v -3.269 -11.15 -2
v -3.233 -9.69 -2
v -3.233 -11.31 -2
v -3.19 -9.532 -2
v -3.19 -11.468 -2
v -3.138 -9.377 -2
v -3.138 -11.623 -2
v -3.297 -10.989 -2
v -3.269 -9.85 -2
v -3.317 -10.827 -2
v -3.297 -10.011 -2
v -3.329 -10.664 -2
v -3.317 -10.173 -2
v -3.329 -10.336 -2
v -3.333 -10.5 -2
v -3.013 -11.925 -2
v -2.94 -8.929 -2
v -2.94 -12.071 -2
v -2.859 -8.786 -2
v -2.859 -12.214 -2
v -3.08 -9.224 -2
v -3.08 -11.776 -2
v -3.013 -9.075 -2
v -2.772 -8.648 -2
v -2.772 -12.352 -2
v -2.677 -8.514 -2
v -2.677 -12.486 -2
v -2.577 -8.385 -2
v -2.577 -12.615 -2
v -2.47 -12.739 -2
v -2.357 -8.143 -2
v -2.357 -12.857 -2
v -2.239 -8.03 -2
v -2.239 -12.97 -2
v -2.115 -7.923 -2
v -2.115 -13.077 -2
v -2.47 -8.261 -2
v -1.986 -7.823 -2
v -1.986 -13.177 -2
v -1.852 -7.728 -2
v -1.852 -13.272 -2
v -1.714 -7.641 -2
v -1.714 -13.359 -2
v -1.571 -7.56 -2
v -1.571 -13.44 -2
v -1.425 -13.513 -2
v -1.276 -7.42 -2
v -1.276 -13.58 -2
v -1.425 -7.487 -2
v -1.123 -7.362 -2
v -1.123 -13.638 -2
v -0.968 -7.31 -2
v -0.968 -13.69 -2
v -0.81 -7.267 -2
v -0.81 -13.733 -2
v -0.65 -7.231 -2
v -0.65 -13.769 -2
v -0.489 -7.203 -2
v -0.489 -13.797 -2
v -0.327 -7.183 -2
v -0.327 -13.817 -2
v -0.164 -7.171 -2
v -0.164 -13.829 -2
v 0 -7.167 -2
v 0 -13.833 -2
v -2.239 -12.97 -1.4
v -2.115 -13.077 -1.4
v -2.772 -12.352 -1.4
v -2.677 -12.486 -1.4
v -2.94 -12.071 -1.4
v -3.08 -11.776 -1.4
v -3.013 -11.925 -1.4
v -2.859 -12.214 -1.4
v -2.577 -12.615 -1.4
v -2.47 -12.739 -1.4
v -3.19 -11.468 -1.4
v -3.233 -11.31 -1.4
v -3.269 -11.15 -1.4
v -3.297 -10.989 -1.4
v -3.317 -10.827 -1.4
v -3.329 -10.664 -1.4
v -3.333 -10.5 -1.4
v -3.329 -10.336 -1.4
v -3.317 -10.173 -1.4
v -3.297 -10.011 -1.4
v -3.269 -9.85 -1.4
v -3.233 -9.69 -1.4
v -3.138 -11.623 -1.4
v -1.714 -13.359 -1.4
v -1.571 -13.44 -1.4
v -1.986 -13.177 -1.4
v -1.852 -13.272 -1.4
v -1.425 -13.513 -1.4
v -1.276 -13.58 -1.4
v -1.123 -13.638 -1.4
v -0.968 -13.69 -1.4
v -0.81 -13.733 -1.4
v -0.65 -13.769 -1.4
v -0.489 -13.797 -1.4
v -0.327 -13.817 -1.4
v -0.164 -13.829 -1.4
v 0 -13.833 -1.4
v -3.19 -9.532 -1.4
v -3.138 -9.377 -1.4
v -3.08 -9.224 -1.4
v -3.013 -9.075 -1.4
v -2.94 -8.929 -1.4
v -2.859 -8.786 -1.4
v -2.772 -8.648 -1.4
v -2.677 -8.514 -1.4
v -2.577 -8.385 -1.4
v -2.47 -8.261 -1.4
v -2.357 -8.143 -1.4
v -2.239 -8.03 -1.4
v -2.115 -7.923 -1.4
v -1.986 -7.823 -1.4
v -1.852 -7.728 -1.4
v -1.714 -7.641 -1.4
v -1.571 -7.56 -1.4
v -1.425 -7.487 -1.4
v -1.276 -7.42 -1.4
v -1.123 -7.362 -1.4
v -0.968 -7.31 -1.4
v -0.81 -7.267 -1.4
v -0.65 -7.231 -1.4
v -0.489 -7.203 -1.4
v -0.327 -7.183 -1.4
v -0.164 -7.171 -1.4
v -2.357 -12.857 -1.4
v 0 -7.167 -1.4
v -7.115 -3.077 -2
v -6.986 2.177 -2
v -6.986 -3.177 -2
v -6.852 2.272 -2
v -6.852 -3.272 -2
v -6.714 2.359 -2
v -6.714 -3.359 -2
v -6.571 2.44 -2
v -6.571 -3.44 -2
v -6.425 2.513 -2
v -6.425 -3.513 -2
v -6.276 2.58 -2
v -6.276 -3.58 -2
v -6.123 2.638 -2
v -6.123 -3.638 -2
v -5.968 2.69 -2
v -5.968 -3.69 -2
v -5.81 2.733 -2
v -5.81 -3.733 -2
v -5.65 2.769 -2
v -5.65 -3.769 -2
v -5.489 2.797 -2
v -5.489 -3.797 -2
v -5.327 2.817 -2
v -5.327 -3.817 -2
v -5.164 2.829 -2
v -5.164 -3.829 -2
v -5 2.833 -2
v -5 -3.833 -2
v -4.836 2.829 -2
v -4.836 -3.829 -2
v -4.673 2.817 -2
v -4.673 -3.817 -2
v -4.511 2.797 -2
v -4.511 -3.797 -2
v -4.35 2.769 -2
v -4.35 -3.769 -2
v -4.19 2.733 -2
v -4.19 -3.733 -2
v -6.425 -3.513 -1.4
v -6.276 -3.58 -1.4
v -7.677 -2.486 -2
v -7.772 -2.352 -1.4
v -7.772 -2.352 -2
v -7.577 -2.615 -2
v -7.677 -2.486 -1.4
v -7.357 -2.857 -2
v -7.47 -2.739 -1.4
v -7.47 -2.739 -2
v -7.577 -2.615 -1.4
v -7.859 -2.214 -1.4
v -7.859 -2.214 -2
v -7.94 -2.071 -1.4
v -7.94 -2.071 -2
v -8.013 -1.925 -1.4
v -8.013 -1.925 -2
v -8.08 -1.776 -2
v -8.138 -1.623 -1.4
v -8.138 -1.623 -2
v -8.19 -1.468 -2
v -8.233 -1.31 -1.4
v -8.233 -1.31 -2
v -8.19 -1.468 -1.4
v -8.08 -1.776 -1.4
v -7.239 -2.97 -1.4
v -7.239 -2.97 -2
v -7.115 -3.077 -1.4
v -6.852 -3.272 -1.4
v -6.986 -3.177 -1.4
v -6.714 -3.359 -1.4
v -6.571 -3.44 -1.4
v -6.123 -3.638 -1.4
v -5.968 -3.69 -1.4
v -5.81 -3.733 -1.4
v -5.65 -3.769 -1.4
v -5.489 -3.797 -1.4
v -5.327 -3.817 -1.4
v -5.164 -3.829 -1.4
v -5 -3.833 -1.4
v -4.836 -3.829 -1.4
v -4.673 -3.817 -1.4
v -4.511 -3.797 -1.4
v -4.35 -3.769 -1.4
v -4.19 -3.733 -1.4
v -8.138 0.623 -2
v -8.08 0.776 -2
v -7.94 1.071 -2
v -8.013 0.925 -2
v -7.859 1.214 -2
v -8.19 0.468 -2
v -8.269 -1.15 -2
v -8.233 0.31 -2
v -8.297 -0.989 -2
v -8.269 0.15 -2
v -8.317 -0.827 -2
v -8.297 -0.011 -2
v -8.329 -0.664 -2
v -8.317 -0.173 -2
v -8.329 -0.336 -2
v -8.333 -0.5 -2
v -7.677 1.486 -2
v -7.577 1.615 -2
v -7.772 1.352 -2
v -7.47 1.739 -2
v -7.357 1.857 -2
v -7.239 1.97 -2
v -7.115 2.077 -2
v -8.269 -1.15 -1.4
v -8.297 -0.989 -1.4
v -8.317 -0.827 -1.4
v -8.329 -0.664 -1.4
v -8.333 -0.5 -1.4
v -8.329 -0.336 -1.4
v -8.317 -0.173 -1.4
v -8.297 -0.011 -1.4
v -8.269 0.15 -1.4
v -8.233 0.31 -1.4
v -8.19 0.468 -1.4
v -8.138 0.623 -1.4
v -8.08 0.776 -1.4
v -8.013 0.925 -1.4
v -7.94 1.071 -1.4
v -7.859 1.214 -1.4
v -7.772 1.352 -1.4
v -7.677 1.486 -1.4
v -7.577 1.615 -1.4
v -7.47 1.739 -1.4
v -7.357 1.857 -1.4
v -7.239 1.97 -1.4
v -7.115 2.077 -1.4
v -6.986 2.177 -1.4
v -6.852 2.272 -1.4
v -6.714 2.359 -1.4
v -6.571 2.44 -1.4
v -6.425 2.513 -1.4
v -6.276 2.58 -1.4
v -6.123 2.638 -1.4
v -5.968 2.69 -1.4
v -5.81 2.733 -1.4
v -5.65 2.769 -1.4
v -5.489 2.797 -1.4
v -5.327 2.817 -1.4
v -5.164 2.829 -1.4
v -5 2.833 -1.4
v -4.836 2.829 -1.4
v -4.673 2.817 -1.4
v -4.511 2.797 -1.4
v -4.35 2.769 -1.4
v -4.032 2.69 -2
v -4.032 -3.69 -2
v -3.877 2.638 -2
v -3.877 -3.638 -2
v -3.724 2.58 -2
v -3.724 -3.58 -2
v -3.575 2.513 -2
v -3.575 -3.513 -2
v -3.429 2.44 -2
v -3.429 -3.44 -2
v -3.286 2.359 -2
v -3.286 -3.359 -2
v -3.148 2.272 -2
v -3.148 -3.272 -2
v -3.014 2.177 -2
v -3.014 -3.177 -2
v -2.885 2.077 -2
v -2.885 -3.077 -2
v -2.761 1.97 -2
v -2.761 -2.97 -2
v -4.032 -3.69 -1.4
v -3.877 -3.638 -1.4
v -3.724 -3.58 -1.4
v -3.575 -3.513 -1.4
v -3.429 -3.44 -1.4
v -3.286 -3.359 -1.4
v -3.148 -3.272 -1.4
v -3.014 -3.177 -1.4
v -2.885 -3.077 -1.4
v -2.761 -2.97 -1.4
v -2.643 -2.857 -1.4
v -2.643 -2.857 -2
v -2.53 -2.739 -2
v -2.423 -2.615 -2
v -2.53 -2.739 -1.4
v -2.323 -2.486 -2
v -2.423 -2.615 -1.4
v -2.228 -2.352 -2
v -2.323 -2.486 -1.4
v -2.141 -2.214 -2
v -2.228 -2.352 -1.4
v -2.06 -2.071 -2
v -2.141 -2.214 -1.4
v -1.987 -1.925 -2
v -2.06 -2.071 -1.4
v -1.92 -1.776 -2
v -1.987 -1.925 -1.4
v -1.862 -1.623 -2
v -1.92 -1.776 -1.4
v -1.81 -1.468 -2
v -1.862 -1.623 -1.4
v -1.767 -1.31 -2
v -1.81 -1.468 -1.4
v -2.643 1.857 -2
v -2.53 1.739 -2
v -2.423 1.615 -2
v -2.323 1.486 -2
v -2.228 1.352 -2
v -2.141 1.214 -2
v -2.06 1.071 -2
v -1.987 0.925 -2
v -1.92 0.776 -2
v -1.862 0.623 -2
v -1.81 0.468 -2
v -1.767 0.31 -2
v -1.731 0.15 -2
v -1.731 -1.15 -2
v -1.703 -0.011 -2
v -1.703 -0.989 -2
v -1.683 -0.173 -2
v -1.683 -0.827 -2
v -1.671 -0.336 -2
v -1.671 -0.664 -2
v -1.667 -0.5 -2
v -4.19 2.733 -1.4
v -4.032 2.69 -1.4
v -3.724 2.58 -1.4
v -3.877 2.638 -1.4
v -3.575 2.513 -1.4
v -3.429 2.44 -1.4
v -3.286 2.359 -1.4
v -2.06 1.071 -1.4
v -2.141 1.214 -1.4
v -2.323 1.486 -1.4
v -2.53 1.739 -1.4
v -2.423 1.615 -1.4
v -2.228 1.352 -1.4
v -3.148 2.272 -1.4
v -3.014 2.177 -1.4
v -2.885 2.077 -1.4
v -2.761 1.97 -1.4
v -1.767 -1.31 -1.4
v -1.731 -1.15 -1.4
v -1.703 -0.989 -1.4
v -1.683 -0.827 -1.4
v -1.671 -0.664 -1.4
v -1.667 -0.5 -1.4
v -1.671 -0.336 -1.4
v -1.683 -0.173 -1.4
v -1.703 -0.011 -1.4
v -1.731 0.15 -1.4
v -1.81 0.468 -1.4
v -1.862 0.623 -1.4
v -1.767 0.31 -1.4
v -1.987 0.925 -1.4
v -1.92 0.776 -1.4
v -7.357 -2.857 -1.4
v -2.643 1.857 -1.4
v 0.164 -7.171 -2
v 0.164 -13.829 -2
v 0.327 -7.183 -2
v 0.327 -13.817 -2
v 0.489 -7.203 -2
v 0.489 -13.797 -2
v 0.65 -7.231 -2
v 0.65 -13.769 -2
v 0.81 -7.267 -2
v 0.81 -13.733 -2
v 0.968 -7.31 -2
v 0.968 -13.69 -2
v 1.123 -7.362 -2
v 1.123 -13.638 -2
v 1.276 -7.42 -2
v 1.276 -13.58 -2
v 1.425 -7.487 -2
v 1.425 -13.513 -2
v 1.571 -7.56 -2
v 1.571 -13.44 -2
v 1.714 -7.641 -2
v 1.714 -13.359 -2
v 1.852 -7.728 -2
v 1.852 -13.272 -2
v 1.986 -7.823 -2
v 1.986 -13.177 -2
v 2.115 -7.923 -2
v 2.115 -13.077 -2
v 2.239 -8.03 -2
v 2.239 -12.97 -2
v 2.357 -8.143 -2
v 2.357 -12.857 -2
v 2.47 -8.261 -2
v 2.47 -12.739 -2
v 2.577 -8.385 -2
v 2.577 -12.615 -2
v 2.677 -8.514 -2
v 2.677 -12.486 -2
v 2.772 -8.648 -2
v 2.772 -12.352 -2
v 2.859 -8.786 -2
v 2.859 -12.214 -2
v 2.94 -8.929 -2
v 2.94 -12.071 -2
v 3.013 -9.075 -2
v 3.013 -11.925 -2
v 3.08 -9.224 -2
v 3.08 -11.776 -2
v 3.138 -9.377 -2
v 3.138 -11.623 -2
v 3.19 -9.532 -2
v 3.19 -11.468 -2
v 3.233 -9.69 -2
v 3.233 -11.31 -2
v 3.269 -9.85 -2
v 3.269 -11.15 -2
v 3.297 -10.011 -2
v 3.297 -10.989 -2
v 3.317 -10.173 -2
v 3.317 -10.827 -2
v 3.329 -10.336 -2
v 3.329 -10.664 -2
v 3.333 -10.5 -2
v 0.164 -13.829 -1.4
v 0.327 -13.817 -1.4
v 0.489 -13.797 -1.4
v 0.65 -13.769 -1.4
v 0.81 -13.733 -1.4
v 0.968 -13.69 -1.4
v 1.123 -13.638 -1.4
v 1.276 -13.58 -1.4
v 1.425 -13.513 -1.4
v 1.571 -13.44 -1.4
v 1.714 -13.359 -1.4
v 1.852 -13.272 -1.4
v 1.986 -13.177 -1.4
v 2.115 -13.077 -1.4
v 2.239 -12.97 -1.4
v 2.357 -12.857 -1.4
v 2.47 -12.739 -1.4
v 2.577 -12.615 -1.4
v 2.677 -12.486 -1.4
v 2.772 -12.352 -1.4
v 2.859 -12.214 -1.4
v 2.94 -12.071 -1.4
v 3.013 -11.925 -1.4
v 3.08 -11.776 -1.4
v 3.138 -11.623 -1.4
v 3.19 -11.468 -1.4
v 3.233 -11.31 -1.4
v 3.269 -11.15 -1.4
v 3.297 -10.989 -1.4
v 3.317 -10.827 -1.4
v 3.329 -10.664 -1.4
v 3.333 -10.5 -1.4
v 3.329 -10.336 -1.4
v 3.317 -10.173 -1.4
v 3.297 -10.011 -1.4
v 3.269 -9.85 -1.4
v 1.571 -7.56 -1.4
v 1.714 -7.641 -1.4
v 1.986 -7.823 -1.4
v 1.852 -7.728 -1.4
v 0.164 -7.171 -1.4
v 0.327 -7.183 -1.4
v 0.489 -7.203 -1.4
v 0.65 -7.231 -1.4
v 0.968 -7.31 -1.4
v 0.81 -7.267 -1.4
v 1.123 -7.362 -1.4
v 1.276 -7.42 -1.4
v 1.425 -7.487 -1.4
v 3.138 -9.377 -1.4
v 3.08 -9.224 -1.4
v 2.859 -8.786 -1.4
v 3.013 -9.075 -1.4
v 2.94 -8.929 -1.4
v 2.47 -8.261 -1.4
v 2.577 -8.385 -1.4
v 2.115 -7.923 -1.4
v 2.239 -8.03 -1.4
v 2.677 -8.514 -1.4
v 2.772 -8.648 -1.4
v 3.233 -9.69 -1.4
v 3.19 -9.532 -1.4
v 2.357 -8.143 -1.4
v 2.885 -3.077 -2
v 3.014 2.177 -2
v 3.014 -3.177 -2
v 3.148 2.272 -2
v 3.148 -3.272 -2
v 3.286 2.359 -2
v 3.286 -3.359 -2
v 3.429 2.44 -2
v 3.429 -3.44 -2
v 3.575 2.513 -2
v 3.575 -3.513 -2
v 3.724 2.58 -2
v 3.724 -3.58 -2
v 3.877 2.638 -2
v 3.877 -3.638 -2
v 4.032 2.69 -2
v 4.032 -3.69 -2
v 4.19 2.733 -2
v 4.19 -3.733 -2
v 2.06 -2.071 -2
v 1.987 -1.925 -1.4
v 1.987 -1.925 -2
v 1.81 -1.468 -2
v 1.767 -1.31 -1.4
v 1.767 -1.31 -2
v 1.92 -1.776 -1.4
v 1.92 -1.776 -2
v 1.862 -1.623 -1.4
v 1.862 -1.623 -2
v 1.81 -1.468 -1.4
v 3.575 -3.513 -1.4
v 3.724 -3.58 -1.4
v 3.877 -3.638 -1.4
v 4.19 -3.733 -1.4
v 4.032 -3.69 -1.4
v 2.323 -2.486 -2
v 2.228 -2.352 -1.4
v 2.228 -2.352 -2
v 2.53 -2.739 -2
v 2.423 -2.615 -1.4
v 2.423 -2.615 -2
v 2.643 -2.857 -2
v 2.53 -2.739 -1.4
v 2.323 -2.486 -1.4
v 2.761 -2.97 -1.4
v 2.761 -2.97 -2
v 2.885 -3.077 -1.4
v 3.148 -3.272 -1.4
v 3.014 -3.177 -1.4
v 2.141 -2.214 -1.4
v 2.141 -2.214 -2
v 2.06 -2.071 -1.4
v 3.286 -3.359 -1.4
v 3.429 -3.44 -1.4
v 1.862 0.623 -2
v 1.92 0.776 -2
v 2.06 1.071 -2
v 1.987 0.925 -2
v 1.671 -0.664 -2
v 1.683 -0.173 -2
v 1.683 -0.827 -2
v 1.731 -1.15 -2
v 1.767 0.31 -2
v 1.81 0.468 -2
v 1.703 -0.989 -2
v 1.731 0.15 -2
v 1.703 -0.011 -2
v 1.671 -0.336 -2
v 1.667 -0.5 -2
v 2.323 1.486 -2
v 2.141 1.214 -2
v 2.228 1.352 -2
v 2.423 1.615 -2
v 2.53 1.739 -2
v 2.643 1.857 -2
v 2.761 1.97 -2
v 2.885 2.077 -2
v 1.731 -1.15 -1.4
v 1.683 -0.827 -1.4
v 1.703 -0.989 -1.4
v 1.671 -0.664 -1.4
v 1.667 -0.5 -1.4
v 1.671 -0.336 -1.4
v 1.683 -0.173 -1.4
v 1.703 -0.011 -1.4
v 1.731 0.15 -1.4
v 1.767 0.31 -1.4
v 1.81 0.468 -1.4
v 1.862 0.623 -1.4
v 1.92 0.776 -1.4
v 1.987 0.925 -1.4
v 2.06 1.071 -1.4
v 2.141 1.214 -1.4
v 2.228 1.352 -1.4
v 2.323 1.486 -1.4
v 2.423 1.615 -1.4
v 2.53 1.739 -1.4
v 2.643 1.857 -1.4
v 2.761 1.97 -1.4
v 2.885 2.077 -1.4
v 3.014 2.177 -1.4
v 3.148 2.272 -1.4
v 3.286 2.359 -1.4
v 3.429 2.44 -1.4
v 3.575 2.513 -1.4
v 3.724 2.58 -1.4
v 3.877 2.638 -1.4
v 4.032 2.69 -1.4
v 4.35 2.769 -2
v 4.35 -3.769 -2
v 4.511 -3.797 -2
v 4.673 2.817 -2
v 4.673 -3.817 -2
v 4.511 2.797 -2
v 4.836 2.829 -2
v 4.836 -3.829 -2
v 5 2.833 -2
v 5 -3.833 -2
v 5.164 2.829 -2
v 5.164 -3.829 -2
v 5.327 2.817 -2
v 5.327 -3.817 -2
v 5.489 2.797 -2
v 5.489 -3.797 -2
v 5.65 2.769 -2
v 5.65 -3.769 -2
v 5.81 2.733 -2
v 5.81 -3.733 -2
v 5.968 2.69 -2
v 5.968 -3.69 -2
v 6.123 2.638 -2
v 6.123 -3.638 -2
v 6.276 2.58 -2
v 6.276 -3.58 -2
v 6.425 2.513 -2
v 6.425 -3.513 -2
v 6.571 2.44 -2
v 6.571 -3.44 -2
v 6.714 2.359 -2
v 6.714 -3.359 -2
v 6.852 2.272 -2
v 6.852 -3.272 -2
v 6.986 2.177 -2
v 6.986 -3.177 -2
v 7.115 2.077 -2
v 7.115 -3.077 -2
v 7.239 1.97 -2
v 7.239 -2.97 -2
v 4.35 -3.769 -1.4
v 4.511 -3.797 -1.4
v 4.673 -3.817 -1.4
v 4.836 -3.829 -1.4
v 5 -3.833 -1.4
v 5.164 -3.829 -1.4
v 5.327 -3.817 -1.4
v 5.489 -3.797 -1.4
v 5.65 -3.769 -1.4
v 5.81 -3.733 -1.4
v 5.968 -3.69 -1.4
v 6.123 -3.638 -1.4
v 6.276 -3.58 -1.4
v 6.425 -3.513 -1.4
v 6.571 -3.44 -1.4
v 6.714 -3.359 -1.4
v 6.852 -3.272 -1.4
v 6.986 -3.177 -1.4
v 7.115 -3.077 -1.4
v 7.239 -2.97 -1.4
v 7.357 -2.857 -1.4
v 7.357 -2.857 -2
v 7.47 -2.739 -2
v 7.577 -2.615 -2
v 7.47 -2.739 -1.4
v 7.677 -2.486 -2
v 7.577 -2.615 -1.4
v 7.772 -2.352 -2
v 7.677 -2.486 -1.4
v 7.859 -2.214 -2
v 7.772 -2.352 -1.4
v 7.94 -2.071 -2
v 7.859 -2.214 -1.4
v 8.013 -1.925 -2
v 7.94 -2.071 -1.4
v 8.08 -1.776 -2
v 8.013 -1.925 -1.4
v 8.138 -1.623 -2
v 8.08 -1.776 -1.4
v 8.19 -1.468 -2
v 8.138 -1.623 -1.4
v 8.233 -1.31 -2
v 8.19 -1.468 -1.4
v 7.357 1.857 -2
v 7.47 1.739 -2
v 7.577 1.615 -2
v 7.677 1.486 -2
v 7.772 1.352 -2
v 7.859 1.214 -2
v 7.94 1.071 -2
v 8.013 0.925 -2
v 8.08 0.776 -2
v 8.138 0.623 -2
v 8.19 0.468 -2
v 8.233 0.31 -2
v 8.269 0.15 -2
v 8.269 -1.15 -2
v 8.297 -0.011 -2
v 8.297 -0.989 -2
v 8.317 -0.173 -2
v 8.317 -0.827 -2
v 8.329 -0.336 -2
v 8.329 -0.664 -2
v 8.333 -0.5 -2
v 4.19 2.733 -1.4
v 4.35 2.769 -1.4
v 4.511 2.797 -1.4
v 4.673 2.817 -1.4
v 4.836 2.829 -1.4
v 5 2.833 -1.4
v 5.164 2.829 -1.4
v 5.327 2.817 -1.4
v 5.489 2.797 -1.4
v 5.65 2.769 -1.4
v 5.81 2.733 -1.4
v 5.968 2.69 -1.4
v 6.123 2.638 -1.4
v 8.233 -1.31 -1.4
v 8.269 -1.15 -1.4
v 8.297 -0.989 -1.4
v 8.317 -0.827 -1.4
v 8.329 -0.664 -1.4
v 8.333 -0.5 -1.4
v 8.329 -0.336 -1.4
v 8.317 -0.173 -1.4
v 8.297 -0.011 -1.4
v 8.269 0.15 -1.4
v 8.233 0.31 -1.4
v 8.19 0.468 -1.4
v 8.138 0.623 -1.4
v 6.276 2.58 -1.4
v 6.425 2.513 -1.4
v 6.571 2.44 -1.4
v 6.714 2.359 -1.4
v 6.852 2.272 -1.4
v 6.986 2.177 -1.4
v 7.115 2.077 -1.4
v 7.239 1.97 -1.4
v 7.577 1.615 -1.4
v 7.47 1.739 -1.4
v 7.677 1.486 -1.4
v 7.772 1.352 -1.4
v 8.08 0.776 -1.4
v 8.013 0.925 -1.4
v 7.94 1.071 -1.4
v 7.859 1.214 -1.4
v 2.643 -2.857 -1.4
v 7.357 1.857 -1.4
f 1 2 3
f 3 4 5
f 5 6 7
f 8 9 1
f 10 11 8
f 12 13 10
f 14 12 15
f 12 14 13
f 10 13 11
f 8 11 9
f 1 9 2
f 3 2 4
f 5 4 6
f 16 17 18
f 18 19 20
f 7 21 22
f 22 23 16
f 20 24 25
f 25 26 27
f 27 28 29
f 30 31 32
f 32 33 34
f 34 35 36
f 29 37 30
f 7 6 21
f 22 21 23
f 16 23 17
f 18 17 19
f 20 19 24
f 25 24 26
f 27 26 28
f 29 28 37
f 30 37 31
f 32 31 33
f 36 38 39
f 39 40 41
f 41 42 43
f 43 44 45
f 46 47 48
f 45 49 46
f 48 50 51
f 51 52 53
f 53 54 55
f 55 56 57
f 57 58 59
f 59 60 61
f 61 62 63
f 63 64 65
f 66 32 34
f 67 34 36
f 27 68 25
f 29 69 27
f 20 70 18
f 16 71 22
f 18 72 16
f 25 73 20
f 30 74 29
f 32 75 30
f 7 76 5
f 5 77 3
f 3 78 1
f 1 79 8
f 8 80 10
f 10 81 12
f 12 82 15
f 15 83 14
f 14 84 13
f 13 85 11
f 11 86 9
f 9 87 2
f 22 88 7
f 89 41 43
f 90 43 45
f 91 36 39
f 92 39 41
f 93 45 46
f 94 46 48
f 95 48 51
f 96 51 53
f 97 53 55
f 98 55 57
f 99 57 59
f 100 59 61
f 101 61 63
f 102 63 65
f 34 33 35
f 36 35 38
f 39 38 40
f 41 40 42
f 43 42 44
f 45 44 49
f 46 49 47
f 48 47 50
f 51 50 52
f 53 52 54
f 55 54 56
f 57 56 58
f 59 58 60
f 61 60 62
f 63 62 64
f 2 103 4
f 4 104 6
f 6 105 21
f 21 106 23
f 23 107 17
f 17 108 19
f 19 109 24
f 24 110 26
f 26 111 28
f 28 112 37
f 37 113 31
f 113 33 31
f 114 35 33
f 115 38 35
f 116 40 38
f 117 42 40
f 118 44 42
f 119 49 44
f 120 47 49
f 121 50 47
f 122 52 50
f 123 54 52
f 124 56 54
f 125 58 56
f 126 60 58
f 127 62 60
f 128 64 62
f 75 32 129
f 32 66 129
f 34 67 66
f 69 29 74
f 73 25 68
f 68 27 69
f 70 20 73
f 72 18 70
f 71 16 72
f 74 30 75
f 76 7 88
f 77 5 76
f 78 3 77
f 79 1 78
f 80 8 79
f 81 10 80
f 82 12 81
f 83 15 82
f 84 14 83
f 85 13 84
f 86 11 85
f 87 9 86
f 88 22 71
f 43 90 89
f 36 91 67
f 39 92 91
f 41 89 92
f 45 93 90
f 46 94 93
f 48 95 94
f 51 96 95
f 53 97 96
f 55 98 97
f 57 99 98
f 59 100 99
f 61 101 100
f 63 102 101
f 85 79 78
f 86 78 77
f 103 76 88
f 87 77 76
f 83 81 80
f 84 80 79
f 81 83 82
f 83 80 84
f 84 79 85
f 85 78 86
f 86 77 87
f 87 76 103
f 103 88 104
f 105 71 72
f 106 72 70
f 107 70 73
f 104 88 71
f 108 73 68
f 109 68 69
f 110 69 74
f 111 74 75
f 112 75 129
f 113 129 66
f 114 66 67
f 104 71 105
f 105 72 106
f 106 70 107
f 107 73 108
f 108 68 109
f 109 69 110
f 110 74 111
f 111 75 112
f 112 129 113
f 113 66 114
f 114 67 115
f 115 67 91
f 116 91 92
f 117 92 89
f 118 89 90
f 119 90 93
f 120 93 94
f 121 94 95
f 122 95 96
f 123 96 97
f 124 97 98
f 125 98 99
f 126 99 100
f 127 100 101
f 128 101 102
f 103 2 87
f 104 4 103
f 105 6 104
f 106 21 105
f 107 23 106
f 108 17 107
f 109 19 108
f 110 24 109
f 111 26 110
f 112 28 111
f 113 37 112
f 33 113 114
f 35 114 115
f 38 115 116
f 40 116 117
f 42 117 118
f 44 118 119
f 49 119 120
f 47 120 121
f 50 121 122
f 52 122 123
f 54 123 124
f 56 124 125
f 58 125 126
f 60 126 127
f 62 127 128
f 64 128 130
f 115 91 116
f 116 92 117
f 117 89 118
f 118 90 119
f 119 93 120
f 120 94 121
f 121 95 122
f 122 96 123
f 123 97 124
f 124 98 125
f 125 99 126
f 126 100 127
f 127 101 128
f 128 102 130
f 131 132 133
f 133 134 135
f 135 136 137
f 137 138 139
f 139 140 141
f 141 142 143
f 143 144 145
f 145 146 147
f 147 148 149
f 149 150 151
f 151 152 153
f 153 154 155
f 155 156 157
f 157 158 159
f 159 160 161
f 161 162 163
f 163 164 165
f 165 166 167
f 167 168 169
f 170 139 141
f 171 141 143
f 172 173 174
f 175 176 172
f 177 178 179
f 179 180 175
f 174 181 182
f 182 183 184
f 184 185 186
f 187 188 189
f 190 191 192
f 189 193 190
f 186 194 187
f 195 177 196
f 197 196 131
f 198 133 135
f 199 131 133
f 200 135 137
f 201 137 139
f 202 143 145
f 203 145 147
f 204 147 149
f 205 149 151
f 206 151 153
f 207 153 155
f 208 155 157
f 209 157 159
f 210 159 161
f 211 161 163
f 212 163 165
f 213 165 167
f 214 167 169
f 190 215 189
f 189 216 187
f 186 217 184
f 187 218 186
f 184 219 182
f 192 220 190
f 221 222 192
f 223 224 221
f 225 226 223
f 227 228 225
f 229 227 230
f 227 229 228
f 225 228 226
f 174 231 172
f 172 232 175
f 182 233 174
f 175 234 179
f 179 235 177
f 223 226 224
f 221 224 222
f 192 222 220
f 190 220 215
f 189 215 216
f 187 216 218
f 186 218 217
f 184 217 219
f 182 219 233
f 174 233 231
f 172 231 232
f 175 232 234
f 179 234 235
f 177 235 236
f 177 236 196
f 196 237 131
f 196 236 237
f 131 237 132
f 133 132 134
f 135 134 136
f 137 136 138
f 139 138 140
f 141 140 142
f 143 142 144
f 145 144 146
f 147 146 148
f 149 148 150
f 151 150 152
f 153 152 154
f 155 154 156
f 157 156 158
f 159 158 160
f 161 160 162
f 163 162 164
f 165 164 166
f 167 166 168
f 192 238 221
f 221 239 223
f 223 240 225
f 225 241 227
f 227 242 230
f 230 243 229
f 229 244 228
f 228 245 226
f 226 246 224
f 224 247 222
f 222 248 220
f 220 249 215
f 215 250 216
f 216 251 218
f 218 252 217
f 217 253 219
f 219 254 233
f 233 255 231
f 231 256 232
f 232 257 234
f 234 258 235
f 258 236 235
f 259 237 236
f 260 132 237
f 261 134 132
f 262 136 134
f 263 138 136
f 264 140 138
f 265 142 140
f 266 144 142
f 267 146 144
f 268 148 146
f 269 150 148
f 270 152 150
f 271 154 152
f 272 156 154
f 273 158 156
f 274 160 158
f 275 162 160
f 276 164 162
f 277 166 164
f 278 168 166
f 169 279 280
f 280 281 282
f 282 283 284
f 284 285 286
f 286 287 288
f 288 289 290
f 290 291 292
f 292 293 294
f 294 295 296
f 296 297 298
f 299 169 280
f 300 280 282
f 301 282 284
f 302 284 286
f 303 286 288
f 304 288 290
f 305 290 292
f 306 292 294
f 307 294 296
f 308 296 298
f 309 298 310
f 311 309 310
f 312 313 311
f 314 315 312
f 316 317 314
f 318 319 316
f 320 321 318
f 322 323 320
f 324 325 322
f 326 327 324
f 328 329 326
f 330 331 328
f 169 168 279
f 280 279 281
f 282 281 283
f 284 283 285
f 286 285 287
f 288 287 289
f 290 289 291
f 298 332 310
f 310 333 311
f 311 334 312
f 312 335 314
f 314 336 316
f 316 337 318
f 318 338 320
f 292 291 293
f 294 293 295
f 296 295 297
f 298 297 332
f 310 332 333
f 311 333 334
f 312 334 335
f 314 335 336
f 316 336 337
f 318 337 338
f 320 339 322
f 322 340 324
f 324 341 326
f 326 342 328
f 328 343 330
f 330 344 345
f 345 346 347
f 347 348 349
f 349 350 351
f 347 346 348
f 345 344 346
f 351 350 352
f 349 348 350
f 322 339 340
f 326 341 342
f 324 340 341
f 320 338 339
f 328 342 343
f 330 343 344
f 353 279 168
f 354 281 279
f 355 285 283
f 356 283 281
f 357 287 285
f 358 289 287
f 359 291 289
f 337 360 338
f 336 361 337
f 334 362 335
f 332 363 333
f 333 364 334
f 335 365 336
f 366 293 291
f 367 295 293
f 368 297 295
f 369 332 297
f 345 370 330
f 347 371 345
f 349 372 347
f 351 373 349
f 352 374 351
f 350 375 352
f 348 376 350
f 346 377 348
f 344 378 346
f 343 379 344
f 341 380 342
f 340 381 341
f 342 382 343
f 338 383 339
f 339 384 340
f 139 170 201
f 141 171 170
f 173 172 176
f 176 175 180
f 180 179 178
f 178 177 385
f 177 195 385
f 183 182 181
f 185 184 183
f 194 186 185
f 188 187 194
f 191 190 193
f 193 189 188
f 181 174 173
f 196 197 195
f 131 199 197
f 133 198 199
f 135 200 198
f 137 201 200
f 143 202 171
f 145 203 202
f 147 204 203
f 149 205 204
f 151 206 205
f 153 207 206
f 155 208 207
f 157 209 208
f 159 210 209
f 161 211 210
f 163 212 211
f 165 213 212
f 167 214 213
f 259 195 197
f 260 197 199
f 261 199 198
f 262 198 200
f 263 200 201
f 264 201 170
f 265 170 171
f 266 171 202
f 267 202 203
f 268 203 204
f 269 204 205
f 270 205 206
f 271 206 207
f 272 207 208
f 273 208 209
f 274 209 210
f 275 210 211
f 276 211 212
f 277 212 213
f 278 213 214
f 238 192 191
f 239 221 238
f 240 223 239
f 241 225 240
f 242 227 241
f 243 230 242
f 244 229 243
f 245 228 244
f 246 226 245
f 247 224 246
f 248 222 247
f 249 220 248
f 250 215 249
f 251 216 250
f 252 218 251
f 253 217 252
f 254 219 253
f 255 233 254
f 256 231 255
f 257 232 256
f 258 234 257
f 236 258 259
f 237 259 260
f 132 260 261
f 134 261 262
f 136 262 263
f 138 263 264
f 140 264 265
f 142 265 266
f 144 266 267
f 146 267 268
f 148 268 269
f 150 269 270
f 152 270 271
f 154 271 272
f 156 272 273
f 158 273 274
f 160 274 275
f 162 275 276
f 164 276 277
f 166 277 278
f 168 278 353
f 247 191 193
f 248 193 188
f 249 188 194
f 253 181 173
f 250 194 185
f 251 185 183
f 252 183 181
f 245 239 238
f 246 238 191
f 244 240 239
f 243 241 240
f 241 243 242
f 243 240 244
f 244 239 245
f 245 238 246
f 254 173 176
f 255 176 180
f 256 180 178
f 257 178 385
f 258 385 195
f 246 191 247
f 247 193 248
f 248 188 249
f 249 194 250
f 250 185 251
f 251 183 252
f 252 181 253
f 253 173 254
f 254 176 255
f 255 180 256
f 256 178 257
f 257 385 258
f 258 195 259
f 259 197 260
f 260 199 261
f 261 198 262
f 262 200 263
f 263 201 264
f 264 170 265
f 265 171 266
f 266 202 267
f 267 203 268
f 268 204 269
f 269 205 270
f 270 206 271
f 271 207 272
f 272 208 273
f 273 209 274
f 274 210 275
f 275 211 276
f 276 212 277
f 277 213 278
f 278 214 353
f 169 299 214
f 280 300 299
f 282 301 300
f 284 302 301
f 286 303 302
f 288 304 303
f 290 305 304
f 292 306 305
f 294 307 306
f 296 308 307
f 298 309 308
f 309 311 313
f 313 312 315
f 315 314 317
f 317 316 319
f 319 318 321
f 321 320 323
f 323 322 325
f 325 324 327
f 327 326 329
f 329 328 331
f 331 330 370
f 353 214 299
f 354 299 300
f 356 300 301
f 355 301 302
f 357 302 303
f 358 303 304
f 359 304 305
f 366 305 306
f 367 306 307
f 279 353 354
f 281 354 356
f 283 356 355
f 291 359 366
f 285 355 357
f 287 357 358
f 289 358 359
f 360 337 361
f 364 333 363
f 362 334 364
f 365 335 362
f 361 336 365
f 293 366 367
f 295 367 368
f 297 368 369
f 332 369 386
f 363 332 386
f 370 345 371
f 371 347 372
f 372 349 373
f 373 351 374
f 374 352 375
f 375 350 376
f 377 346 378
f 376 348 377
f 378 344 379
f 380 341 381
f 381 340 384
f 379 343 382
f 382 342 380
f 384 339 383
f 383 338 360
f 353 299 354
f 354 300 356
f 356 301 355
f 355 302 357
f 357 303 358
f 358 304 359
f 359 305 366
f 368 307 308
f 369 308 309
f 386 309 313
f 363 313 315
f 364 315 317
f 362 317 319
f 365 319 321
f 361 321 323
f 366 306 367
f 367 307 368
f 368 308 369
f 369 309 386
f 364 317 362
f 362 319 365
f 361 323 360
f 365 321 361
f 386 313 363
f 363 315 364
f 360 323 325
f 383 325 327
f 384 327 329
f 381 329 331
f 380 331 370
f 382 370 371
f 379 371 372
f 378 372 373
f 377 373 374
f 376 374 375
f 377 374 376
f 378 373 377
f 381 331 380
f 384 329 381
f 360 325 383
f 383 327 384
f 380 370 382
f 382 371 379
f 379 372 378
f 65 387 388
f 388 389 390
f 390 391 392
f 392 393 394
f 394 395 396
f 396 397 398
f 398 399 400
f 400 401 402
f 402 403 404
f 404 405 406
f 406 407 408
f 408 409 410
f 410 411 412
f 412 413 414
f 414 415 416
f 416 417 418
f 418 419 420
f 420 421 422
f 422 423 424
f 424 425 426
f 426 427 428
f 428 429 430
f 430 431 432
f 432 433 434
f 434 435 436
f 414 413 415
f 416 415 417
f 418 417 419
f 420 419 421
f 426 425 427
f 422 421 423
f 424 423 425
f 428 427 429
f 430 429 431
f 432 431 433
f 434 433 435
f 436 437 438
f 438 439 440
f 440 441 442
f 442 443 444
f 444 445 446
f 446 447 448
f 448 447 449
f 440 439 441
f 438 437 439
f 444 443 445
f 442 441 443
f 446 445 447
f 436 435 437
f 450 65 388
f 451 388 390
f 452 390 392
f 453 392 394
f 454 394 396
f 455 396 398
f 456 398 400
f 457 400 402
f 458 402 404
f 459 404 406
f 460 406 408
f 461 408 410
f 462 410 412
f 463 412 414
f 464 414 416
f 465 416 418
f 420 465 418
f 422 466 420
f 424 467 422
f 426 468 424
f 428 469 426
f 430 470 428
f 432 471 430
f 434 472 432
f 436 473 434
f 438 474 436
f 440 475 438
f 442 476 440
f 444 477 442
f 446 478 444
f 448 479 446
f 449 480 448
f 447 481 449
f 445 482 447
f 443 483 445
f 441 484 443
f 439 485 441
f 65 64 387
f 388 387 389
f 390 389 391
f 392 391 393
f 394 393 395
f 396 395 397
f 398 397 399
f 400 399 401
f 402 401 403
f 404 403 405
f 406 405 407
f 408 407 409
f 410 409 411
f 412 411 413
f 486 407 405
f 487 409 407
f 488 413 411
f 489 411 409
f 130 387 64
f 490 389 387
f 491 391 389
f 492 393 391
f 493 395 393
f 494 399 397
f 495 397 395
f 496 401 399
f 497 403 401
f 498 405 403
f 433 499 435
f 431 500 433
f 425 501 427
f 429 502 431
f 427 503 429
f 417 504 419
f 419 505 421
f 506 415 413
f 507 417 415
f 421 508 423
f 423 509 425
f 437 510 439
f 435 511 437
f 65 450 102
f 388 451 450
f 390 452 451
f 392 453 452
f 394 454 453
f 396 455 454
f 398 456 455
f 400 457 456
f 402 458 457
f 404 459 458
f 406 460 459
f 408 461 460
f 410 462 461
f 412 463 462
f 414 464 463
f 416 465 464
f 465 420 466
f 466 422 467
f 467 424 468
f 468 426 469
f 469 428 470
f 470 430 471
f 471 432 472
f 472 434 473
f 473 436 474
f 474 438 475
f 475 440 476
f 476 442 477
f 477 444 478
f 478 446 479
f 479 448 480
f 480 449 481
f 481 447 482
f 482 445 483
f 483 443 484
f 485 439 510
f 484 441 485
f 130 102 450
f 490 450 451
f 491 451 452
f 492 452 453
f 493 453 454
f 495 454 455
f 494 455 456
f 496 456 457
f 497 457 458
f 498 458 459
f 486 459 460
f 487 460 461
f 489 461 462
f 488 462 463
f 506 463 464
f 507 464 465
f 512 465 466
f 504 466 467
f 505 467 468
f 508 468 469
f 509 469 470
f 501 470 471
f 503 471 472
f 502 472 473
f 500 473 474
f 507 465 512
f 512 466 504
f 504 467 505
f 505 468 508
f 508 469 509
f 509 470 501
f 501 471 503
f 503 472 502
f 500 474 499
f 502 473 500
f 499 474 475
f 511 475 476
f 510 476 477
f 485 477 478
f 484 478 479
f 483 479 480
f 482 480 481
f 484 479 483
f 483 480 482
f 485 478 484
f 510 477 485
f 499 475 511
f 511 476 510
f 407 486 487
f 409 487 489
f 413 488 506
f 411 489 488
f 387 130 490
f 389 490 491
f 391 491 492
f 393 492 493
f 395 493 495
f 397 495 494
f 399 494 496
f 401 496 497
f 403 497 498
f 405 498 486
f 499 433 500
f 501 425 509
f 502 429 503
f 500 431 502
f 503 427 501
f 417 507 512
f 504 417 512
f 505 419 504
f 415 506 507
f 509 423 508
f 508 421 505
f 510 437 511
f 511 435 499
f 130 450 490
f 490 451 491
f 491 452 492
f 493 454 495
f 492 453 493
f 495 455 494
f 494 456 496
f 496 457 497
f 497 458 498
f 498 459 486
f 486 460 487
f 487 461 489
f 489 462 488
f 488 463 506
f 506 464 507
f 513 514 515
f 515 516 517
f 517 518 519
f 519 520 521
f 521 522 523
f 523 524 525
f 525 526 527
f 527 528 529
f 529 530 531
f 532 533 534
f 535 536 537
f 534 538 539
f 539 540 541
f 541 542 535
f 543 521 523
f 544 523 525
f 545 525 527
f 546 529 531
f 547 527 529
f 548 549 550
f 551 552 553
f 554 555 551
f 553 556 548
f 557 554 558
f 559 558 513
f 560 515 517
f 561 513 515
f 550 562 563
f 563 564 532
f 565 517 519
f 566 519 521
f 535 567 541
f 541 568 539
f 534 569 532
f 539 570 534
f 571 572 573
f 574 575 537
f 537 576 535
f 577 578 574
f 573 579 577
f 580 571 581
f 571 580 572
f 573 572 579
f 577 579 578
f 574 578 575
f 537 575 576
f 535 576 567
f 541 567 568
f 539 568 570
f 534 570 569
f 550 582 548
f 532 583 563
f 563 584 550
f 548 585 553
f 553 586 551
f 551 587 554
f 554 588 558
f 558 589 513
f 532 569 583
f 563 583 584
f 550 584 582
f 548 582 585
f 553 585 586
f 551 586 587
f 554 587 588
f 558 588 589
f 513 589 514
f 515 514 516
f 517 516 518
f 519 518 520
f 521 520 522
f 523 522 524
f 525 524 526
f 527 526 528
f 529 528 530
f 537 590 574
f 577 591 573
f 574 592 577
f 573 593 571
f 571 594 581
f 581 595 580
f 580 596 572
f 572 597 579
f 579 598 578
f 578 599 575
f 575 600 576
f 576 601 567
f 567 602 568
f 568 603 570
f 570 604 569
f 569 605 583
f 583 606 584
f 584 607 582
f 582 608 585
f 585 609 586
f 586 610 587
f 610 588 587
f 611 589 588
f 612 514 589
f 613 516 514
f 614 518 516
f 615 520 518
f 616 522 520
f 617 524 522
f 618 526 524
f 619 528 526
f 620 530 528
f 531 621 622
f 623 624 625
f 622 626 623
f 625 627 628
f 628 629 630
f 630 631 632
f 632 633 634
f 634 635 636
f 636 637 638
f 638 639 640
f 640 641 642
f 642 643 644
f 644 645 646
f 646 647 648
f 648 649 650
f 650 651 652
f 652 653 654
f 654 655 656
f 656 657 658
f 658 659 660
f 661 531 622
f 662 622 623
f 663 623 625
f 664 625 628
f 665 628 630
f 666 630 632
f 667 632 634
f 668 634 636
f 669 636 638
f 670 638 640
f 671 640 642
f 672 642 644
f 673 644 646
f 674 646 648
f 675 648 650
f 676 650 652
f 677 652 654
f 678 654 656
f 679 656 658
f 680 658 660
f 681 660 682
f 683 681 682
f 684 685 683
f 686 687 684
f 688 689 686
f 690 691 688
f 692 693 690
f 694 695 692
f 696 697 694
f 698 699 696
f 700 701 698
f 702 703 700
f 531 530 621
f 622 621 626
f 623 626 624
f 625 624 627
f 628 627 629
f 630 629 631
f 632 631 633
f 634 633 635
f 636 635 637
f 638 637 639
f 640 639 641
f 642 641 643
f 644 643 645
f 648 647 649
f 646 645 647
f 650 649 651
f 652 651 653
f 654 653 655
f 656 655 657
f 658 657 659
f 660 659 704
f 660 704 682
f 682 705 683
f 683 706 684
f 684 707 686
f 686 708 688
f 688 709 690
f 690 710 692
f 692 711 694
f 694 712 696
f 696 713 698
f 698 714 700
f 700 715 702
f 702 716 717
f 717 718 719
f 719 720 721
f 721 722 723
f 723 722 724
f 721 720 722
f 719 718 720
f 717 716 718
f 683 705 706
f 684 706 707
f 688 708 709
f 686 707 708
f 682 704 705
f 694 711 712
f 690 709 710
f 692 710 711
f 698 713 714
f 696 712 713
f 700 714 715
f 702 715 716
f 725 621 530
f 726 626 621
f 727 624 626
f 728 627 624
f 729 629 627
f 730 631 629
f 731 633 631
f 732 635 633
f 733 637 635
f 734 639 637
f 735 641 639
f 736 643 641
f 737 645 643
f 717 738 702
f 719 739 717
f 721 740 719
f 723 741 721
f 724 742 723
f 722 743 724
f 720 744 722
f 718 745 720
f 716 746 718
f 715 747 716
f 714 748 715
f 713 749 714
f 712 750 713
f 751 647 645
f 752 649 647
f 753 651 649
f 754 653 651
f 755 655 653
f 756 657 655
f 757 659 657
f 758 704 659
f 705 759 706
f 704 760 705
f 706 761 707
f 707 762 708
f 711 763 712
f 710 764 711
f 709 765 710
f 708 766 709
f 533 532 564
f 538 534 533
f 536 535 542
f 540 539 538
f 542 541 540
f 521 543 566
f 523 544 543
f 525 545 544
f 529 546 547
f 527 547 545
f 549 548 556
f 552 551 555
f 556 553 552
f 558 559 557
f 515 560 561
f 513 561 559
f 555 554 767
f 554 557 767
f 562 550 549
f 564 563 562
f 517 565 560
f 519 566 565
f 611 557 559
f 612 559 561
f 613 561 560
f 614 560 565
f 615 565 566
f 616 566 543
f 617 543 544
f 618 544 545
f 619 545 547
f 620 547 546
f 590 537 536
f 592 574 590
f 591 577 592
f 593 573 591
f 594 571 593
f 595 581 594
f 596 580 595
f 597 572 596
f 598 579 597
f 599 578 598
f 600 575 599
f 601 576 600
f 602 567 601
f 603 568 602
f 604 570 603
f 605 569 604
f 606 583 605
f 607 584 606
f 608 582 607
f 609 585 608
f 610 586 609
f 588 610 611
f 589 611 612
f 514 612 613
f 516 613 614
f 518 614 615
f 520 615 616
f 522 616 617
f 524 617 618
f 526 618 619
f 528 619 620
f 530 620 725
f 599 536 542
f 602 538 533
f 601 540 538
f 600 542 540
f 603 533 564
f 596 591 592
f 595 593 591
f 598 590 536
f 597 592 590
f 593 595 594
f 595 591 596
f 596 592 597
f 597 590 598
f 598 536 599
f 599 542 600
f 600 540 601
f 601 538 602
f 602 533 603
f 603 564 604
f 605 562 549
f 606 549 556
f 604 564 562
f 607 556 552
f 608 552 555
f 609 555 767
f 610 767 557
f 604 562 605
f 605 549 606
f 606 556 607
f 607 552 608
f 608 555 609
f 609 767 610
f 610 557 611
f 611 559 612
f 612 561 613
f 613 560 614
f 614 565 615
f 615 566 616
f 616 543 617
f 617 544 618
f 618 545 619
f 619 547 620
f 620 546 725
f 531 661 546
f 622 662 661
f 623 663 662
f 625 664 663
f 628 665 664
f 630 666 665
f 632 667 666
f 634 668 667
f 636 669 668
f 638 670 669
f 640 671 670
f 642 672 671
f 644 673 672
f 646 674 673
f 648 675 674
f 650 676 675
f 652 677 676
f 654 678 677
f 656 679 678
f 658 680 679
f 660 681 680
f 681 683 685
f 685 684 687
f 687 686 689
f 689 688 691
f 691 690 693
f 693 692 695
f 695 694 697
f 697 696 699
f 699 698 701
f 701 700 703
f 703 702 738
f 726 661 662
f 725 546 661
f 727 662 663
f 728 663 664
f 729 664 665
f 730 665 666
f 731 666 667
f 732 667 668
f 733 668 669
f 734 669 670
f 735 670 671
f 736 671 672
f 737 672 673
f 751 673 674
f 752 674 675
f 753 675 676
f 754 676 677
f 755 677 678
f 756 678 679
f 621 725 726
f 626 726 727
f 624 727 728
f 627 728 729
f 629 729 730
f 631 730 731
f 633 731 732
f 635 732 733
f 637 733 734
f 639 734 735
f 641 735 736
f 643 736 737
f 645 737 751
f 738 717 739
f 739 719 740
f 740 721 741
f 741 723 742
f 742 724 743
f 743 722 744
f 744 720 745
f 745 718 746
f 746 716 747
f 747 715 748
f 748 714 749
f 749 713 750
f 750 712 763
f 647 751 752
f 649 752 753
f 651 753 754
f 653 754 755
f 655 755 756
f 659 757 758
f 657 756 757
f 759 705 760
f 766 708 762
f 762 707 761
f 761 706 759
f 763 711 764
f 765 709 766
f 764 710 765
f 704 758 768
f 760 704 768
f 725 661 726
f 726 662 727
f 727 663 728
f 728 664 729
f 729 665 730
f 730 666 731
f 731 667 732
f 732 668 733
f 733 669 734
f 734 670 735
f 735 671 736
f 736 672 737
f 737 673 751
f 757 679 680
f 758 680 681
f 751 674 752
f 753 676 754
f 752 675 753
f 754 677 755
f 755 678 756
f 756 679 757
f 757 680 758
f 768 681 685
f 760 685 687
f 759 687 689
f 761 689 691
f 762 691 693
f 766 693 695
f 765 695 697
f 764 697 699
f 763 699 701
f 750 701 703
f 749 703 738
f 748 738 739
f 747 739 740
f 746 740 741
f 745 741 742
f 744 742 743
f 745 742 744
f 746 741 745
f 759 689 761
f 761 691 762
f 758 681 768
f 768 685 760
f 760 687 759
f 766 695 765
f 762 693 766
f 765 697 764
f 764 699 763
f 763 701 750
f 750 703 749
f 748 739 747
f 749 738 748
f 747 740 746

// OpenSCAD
/* RailEduKit/InteractiveSignallingLaboratory © 2025 by Martin Scheidt and contributors
 * License: CC-BY 4.0 - https://creativecommons.org/licenses/by/4.0/
 * Project description: The Interactive Signalling Laboratory is a tool for training in Rail
 * Applications to enhance the knowledge of control and signalling principles for rail transport systems.
 *
 * Module: train_integrity_symbol_front
 */

// Include configuration file
include <../config/global_variables.scad>

/* PRINT INSTRUCTION
To print the train integrity you have to export the symbol and the body seperately as STL.
Then you have to select the body STL and the symbol STL and load them TOGETHER at the same time in Bambu Studio.
Thus the two files are positioned at the same place and the symbol fills the holes in the body perfectly.
Then you can select the two parts seperately to color them.
Through this procedure you can print multiple colors in one layer.
 */


module front_of_train_symbol() {
	translate([ -shield_width / 2, -(shield_depth) / 2 - coupling_radius + 1, -shield_thickness ])
	union() {
		translate(
		    [ (1 / 12) * shield_width + headlight_d / 2, (shield_depth + (1 / 6) * shield_width + headlight_d) / 2, 0 ])
		cylinder(d = headlight_d, h = number_height);
		translate([
			(11 / 12) * shield_width - headlight_d / 2, (shield_depth + (1 / 6) * shield_width + headlight_d) / 2, 0
		])
		cylinder(d = headlight_d, h = number_height);
		translate([ (1 / 2) * shield_width, (shield_depth - (1 / 6) * shield_width - headlight_d) / 2, 0 ])
		cylinder(d = headlight_d, h = number_height);
	}
}

front_of_train_symbol();
